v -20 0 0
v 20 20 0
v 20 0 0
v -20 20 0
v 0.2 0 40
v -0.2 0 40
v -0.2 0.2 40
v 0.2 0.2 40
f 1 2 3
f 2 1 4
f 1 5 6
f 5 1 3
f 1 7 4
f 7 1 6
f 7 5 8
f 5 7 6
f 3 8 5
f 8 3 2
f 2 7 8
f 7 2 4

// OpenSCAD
// Create a half-pyramid from a single linear extrusion
module halfpyramid(base, height) {
   linear_extrude(height, scale=0.01)
      translate([-base/2, 0, 0]) square([base, base/2]);
}

halfpyramid(20, 10);
halfpyramid(40, 40);
